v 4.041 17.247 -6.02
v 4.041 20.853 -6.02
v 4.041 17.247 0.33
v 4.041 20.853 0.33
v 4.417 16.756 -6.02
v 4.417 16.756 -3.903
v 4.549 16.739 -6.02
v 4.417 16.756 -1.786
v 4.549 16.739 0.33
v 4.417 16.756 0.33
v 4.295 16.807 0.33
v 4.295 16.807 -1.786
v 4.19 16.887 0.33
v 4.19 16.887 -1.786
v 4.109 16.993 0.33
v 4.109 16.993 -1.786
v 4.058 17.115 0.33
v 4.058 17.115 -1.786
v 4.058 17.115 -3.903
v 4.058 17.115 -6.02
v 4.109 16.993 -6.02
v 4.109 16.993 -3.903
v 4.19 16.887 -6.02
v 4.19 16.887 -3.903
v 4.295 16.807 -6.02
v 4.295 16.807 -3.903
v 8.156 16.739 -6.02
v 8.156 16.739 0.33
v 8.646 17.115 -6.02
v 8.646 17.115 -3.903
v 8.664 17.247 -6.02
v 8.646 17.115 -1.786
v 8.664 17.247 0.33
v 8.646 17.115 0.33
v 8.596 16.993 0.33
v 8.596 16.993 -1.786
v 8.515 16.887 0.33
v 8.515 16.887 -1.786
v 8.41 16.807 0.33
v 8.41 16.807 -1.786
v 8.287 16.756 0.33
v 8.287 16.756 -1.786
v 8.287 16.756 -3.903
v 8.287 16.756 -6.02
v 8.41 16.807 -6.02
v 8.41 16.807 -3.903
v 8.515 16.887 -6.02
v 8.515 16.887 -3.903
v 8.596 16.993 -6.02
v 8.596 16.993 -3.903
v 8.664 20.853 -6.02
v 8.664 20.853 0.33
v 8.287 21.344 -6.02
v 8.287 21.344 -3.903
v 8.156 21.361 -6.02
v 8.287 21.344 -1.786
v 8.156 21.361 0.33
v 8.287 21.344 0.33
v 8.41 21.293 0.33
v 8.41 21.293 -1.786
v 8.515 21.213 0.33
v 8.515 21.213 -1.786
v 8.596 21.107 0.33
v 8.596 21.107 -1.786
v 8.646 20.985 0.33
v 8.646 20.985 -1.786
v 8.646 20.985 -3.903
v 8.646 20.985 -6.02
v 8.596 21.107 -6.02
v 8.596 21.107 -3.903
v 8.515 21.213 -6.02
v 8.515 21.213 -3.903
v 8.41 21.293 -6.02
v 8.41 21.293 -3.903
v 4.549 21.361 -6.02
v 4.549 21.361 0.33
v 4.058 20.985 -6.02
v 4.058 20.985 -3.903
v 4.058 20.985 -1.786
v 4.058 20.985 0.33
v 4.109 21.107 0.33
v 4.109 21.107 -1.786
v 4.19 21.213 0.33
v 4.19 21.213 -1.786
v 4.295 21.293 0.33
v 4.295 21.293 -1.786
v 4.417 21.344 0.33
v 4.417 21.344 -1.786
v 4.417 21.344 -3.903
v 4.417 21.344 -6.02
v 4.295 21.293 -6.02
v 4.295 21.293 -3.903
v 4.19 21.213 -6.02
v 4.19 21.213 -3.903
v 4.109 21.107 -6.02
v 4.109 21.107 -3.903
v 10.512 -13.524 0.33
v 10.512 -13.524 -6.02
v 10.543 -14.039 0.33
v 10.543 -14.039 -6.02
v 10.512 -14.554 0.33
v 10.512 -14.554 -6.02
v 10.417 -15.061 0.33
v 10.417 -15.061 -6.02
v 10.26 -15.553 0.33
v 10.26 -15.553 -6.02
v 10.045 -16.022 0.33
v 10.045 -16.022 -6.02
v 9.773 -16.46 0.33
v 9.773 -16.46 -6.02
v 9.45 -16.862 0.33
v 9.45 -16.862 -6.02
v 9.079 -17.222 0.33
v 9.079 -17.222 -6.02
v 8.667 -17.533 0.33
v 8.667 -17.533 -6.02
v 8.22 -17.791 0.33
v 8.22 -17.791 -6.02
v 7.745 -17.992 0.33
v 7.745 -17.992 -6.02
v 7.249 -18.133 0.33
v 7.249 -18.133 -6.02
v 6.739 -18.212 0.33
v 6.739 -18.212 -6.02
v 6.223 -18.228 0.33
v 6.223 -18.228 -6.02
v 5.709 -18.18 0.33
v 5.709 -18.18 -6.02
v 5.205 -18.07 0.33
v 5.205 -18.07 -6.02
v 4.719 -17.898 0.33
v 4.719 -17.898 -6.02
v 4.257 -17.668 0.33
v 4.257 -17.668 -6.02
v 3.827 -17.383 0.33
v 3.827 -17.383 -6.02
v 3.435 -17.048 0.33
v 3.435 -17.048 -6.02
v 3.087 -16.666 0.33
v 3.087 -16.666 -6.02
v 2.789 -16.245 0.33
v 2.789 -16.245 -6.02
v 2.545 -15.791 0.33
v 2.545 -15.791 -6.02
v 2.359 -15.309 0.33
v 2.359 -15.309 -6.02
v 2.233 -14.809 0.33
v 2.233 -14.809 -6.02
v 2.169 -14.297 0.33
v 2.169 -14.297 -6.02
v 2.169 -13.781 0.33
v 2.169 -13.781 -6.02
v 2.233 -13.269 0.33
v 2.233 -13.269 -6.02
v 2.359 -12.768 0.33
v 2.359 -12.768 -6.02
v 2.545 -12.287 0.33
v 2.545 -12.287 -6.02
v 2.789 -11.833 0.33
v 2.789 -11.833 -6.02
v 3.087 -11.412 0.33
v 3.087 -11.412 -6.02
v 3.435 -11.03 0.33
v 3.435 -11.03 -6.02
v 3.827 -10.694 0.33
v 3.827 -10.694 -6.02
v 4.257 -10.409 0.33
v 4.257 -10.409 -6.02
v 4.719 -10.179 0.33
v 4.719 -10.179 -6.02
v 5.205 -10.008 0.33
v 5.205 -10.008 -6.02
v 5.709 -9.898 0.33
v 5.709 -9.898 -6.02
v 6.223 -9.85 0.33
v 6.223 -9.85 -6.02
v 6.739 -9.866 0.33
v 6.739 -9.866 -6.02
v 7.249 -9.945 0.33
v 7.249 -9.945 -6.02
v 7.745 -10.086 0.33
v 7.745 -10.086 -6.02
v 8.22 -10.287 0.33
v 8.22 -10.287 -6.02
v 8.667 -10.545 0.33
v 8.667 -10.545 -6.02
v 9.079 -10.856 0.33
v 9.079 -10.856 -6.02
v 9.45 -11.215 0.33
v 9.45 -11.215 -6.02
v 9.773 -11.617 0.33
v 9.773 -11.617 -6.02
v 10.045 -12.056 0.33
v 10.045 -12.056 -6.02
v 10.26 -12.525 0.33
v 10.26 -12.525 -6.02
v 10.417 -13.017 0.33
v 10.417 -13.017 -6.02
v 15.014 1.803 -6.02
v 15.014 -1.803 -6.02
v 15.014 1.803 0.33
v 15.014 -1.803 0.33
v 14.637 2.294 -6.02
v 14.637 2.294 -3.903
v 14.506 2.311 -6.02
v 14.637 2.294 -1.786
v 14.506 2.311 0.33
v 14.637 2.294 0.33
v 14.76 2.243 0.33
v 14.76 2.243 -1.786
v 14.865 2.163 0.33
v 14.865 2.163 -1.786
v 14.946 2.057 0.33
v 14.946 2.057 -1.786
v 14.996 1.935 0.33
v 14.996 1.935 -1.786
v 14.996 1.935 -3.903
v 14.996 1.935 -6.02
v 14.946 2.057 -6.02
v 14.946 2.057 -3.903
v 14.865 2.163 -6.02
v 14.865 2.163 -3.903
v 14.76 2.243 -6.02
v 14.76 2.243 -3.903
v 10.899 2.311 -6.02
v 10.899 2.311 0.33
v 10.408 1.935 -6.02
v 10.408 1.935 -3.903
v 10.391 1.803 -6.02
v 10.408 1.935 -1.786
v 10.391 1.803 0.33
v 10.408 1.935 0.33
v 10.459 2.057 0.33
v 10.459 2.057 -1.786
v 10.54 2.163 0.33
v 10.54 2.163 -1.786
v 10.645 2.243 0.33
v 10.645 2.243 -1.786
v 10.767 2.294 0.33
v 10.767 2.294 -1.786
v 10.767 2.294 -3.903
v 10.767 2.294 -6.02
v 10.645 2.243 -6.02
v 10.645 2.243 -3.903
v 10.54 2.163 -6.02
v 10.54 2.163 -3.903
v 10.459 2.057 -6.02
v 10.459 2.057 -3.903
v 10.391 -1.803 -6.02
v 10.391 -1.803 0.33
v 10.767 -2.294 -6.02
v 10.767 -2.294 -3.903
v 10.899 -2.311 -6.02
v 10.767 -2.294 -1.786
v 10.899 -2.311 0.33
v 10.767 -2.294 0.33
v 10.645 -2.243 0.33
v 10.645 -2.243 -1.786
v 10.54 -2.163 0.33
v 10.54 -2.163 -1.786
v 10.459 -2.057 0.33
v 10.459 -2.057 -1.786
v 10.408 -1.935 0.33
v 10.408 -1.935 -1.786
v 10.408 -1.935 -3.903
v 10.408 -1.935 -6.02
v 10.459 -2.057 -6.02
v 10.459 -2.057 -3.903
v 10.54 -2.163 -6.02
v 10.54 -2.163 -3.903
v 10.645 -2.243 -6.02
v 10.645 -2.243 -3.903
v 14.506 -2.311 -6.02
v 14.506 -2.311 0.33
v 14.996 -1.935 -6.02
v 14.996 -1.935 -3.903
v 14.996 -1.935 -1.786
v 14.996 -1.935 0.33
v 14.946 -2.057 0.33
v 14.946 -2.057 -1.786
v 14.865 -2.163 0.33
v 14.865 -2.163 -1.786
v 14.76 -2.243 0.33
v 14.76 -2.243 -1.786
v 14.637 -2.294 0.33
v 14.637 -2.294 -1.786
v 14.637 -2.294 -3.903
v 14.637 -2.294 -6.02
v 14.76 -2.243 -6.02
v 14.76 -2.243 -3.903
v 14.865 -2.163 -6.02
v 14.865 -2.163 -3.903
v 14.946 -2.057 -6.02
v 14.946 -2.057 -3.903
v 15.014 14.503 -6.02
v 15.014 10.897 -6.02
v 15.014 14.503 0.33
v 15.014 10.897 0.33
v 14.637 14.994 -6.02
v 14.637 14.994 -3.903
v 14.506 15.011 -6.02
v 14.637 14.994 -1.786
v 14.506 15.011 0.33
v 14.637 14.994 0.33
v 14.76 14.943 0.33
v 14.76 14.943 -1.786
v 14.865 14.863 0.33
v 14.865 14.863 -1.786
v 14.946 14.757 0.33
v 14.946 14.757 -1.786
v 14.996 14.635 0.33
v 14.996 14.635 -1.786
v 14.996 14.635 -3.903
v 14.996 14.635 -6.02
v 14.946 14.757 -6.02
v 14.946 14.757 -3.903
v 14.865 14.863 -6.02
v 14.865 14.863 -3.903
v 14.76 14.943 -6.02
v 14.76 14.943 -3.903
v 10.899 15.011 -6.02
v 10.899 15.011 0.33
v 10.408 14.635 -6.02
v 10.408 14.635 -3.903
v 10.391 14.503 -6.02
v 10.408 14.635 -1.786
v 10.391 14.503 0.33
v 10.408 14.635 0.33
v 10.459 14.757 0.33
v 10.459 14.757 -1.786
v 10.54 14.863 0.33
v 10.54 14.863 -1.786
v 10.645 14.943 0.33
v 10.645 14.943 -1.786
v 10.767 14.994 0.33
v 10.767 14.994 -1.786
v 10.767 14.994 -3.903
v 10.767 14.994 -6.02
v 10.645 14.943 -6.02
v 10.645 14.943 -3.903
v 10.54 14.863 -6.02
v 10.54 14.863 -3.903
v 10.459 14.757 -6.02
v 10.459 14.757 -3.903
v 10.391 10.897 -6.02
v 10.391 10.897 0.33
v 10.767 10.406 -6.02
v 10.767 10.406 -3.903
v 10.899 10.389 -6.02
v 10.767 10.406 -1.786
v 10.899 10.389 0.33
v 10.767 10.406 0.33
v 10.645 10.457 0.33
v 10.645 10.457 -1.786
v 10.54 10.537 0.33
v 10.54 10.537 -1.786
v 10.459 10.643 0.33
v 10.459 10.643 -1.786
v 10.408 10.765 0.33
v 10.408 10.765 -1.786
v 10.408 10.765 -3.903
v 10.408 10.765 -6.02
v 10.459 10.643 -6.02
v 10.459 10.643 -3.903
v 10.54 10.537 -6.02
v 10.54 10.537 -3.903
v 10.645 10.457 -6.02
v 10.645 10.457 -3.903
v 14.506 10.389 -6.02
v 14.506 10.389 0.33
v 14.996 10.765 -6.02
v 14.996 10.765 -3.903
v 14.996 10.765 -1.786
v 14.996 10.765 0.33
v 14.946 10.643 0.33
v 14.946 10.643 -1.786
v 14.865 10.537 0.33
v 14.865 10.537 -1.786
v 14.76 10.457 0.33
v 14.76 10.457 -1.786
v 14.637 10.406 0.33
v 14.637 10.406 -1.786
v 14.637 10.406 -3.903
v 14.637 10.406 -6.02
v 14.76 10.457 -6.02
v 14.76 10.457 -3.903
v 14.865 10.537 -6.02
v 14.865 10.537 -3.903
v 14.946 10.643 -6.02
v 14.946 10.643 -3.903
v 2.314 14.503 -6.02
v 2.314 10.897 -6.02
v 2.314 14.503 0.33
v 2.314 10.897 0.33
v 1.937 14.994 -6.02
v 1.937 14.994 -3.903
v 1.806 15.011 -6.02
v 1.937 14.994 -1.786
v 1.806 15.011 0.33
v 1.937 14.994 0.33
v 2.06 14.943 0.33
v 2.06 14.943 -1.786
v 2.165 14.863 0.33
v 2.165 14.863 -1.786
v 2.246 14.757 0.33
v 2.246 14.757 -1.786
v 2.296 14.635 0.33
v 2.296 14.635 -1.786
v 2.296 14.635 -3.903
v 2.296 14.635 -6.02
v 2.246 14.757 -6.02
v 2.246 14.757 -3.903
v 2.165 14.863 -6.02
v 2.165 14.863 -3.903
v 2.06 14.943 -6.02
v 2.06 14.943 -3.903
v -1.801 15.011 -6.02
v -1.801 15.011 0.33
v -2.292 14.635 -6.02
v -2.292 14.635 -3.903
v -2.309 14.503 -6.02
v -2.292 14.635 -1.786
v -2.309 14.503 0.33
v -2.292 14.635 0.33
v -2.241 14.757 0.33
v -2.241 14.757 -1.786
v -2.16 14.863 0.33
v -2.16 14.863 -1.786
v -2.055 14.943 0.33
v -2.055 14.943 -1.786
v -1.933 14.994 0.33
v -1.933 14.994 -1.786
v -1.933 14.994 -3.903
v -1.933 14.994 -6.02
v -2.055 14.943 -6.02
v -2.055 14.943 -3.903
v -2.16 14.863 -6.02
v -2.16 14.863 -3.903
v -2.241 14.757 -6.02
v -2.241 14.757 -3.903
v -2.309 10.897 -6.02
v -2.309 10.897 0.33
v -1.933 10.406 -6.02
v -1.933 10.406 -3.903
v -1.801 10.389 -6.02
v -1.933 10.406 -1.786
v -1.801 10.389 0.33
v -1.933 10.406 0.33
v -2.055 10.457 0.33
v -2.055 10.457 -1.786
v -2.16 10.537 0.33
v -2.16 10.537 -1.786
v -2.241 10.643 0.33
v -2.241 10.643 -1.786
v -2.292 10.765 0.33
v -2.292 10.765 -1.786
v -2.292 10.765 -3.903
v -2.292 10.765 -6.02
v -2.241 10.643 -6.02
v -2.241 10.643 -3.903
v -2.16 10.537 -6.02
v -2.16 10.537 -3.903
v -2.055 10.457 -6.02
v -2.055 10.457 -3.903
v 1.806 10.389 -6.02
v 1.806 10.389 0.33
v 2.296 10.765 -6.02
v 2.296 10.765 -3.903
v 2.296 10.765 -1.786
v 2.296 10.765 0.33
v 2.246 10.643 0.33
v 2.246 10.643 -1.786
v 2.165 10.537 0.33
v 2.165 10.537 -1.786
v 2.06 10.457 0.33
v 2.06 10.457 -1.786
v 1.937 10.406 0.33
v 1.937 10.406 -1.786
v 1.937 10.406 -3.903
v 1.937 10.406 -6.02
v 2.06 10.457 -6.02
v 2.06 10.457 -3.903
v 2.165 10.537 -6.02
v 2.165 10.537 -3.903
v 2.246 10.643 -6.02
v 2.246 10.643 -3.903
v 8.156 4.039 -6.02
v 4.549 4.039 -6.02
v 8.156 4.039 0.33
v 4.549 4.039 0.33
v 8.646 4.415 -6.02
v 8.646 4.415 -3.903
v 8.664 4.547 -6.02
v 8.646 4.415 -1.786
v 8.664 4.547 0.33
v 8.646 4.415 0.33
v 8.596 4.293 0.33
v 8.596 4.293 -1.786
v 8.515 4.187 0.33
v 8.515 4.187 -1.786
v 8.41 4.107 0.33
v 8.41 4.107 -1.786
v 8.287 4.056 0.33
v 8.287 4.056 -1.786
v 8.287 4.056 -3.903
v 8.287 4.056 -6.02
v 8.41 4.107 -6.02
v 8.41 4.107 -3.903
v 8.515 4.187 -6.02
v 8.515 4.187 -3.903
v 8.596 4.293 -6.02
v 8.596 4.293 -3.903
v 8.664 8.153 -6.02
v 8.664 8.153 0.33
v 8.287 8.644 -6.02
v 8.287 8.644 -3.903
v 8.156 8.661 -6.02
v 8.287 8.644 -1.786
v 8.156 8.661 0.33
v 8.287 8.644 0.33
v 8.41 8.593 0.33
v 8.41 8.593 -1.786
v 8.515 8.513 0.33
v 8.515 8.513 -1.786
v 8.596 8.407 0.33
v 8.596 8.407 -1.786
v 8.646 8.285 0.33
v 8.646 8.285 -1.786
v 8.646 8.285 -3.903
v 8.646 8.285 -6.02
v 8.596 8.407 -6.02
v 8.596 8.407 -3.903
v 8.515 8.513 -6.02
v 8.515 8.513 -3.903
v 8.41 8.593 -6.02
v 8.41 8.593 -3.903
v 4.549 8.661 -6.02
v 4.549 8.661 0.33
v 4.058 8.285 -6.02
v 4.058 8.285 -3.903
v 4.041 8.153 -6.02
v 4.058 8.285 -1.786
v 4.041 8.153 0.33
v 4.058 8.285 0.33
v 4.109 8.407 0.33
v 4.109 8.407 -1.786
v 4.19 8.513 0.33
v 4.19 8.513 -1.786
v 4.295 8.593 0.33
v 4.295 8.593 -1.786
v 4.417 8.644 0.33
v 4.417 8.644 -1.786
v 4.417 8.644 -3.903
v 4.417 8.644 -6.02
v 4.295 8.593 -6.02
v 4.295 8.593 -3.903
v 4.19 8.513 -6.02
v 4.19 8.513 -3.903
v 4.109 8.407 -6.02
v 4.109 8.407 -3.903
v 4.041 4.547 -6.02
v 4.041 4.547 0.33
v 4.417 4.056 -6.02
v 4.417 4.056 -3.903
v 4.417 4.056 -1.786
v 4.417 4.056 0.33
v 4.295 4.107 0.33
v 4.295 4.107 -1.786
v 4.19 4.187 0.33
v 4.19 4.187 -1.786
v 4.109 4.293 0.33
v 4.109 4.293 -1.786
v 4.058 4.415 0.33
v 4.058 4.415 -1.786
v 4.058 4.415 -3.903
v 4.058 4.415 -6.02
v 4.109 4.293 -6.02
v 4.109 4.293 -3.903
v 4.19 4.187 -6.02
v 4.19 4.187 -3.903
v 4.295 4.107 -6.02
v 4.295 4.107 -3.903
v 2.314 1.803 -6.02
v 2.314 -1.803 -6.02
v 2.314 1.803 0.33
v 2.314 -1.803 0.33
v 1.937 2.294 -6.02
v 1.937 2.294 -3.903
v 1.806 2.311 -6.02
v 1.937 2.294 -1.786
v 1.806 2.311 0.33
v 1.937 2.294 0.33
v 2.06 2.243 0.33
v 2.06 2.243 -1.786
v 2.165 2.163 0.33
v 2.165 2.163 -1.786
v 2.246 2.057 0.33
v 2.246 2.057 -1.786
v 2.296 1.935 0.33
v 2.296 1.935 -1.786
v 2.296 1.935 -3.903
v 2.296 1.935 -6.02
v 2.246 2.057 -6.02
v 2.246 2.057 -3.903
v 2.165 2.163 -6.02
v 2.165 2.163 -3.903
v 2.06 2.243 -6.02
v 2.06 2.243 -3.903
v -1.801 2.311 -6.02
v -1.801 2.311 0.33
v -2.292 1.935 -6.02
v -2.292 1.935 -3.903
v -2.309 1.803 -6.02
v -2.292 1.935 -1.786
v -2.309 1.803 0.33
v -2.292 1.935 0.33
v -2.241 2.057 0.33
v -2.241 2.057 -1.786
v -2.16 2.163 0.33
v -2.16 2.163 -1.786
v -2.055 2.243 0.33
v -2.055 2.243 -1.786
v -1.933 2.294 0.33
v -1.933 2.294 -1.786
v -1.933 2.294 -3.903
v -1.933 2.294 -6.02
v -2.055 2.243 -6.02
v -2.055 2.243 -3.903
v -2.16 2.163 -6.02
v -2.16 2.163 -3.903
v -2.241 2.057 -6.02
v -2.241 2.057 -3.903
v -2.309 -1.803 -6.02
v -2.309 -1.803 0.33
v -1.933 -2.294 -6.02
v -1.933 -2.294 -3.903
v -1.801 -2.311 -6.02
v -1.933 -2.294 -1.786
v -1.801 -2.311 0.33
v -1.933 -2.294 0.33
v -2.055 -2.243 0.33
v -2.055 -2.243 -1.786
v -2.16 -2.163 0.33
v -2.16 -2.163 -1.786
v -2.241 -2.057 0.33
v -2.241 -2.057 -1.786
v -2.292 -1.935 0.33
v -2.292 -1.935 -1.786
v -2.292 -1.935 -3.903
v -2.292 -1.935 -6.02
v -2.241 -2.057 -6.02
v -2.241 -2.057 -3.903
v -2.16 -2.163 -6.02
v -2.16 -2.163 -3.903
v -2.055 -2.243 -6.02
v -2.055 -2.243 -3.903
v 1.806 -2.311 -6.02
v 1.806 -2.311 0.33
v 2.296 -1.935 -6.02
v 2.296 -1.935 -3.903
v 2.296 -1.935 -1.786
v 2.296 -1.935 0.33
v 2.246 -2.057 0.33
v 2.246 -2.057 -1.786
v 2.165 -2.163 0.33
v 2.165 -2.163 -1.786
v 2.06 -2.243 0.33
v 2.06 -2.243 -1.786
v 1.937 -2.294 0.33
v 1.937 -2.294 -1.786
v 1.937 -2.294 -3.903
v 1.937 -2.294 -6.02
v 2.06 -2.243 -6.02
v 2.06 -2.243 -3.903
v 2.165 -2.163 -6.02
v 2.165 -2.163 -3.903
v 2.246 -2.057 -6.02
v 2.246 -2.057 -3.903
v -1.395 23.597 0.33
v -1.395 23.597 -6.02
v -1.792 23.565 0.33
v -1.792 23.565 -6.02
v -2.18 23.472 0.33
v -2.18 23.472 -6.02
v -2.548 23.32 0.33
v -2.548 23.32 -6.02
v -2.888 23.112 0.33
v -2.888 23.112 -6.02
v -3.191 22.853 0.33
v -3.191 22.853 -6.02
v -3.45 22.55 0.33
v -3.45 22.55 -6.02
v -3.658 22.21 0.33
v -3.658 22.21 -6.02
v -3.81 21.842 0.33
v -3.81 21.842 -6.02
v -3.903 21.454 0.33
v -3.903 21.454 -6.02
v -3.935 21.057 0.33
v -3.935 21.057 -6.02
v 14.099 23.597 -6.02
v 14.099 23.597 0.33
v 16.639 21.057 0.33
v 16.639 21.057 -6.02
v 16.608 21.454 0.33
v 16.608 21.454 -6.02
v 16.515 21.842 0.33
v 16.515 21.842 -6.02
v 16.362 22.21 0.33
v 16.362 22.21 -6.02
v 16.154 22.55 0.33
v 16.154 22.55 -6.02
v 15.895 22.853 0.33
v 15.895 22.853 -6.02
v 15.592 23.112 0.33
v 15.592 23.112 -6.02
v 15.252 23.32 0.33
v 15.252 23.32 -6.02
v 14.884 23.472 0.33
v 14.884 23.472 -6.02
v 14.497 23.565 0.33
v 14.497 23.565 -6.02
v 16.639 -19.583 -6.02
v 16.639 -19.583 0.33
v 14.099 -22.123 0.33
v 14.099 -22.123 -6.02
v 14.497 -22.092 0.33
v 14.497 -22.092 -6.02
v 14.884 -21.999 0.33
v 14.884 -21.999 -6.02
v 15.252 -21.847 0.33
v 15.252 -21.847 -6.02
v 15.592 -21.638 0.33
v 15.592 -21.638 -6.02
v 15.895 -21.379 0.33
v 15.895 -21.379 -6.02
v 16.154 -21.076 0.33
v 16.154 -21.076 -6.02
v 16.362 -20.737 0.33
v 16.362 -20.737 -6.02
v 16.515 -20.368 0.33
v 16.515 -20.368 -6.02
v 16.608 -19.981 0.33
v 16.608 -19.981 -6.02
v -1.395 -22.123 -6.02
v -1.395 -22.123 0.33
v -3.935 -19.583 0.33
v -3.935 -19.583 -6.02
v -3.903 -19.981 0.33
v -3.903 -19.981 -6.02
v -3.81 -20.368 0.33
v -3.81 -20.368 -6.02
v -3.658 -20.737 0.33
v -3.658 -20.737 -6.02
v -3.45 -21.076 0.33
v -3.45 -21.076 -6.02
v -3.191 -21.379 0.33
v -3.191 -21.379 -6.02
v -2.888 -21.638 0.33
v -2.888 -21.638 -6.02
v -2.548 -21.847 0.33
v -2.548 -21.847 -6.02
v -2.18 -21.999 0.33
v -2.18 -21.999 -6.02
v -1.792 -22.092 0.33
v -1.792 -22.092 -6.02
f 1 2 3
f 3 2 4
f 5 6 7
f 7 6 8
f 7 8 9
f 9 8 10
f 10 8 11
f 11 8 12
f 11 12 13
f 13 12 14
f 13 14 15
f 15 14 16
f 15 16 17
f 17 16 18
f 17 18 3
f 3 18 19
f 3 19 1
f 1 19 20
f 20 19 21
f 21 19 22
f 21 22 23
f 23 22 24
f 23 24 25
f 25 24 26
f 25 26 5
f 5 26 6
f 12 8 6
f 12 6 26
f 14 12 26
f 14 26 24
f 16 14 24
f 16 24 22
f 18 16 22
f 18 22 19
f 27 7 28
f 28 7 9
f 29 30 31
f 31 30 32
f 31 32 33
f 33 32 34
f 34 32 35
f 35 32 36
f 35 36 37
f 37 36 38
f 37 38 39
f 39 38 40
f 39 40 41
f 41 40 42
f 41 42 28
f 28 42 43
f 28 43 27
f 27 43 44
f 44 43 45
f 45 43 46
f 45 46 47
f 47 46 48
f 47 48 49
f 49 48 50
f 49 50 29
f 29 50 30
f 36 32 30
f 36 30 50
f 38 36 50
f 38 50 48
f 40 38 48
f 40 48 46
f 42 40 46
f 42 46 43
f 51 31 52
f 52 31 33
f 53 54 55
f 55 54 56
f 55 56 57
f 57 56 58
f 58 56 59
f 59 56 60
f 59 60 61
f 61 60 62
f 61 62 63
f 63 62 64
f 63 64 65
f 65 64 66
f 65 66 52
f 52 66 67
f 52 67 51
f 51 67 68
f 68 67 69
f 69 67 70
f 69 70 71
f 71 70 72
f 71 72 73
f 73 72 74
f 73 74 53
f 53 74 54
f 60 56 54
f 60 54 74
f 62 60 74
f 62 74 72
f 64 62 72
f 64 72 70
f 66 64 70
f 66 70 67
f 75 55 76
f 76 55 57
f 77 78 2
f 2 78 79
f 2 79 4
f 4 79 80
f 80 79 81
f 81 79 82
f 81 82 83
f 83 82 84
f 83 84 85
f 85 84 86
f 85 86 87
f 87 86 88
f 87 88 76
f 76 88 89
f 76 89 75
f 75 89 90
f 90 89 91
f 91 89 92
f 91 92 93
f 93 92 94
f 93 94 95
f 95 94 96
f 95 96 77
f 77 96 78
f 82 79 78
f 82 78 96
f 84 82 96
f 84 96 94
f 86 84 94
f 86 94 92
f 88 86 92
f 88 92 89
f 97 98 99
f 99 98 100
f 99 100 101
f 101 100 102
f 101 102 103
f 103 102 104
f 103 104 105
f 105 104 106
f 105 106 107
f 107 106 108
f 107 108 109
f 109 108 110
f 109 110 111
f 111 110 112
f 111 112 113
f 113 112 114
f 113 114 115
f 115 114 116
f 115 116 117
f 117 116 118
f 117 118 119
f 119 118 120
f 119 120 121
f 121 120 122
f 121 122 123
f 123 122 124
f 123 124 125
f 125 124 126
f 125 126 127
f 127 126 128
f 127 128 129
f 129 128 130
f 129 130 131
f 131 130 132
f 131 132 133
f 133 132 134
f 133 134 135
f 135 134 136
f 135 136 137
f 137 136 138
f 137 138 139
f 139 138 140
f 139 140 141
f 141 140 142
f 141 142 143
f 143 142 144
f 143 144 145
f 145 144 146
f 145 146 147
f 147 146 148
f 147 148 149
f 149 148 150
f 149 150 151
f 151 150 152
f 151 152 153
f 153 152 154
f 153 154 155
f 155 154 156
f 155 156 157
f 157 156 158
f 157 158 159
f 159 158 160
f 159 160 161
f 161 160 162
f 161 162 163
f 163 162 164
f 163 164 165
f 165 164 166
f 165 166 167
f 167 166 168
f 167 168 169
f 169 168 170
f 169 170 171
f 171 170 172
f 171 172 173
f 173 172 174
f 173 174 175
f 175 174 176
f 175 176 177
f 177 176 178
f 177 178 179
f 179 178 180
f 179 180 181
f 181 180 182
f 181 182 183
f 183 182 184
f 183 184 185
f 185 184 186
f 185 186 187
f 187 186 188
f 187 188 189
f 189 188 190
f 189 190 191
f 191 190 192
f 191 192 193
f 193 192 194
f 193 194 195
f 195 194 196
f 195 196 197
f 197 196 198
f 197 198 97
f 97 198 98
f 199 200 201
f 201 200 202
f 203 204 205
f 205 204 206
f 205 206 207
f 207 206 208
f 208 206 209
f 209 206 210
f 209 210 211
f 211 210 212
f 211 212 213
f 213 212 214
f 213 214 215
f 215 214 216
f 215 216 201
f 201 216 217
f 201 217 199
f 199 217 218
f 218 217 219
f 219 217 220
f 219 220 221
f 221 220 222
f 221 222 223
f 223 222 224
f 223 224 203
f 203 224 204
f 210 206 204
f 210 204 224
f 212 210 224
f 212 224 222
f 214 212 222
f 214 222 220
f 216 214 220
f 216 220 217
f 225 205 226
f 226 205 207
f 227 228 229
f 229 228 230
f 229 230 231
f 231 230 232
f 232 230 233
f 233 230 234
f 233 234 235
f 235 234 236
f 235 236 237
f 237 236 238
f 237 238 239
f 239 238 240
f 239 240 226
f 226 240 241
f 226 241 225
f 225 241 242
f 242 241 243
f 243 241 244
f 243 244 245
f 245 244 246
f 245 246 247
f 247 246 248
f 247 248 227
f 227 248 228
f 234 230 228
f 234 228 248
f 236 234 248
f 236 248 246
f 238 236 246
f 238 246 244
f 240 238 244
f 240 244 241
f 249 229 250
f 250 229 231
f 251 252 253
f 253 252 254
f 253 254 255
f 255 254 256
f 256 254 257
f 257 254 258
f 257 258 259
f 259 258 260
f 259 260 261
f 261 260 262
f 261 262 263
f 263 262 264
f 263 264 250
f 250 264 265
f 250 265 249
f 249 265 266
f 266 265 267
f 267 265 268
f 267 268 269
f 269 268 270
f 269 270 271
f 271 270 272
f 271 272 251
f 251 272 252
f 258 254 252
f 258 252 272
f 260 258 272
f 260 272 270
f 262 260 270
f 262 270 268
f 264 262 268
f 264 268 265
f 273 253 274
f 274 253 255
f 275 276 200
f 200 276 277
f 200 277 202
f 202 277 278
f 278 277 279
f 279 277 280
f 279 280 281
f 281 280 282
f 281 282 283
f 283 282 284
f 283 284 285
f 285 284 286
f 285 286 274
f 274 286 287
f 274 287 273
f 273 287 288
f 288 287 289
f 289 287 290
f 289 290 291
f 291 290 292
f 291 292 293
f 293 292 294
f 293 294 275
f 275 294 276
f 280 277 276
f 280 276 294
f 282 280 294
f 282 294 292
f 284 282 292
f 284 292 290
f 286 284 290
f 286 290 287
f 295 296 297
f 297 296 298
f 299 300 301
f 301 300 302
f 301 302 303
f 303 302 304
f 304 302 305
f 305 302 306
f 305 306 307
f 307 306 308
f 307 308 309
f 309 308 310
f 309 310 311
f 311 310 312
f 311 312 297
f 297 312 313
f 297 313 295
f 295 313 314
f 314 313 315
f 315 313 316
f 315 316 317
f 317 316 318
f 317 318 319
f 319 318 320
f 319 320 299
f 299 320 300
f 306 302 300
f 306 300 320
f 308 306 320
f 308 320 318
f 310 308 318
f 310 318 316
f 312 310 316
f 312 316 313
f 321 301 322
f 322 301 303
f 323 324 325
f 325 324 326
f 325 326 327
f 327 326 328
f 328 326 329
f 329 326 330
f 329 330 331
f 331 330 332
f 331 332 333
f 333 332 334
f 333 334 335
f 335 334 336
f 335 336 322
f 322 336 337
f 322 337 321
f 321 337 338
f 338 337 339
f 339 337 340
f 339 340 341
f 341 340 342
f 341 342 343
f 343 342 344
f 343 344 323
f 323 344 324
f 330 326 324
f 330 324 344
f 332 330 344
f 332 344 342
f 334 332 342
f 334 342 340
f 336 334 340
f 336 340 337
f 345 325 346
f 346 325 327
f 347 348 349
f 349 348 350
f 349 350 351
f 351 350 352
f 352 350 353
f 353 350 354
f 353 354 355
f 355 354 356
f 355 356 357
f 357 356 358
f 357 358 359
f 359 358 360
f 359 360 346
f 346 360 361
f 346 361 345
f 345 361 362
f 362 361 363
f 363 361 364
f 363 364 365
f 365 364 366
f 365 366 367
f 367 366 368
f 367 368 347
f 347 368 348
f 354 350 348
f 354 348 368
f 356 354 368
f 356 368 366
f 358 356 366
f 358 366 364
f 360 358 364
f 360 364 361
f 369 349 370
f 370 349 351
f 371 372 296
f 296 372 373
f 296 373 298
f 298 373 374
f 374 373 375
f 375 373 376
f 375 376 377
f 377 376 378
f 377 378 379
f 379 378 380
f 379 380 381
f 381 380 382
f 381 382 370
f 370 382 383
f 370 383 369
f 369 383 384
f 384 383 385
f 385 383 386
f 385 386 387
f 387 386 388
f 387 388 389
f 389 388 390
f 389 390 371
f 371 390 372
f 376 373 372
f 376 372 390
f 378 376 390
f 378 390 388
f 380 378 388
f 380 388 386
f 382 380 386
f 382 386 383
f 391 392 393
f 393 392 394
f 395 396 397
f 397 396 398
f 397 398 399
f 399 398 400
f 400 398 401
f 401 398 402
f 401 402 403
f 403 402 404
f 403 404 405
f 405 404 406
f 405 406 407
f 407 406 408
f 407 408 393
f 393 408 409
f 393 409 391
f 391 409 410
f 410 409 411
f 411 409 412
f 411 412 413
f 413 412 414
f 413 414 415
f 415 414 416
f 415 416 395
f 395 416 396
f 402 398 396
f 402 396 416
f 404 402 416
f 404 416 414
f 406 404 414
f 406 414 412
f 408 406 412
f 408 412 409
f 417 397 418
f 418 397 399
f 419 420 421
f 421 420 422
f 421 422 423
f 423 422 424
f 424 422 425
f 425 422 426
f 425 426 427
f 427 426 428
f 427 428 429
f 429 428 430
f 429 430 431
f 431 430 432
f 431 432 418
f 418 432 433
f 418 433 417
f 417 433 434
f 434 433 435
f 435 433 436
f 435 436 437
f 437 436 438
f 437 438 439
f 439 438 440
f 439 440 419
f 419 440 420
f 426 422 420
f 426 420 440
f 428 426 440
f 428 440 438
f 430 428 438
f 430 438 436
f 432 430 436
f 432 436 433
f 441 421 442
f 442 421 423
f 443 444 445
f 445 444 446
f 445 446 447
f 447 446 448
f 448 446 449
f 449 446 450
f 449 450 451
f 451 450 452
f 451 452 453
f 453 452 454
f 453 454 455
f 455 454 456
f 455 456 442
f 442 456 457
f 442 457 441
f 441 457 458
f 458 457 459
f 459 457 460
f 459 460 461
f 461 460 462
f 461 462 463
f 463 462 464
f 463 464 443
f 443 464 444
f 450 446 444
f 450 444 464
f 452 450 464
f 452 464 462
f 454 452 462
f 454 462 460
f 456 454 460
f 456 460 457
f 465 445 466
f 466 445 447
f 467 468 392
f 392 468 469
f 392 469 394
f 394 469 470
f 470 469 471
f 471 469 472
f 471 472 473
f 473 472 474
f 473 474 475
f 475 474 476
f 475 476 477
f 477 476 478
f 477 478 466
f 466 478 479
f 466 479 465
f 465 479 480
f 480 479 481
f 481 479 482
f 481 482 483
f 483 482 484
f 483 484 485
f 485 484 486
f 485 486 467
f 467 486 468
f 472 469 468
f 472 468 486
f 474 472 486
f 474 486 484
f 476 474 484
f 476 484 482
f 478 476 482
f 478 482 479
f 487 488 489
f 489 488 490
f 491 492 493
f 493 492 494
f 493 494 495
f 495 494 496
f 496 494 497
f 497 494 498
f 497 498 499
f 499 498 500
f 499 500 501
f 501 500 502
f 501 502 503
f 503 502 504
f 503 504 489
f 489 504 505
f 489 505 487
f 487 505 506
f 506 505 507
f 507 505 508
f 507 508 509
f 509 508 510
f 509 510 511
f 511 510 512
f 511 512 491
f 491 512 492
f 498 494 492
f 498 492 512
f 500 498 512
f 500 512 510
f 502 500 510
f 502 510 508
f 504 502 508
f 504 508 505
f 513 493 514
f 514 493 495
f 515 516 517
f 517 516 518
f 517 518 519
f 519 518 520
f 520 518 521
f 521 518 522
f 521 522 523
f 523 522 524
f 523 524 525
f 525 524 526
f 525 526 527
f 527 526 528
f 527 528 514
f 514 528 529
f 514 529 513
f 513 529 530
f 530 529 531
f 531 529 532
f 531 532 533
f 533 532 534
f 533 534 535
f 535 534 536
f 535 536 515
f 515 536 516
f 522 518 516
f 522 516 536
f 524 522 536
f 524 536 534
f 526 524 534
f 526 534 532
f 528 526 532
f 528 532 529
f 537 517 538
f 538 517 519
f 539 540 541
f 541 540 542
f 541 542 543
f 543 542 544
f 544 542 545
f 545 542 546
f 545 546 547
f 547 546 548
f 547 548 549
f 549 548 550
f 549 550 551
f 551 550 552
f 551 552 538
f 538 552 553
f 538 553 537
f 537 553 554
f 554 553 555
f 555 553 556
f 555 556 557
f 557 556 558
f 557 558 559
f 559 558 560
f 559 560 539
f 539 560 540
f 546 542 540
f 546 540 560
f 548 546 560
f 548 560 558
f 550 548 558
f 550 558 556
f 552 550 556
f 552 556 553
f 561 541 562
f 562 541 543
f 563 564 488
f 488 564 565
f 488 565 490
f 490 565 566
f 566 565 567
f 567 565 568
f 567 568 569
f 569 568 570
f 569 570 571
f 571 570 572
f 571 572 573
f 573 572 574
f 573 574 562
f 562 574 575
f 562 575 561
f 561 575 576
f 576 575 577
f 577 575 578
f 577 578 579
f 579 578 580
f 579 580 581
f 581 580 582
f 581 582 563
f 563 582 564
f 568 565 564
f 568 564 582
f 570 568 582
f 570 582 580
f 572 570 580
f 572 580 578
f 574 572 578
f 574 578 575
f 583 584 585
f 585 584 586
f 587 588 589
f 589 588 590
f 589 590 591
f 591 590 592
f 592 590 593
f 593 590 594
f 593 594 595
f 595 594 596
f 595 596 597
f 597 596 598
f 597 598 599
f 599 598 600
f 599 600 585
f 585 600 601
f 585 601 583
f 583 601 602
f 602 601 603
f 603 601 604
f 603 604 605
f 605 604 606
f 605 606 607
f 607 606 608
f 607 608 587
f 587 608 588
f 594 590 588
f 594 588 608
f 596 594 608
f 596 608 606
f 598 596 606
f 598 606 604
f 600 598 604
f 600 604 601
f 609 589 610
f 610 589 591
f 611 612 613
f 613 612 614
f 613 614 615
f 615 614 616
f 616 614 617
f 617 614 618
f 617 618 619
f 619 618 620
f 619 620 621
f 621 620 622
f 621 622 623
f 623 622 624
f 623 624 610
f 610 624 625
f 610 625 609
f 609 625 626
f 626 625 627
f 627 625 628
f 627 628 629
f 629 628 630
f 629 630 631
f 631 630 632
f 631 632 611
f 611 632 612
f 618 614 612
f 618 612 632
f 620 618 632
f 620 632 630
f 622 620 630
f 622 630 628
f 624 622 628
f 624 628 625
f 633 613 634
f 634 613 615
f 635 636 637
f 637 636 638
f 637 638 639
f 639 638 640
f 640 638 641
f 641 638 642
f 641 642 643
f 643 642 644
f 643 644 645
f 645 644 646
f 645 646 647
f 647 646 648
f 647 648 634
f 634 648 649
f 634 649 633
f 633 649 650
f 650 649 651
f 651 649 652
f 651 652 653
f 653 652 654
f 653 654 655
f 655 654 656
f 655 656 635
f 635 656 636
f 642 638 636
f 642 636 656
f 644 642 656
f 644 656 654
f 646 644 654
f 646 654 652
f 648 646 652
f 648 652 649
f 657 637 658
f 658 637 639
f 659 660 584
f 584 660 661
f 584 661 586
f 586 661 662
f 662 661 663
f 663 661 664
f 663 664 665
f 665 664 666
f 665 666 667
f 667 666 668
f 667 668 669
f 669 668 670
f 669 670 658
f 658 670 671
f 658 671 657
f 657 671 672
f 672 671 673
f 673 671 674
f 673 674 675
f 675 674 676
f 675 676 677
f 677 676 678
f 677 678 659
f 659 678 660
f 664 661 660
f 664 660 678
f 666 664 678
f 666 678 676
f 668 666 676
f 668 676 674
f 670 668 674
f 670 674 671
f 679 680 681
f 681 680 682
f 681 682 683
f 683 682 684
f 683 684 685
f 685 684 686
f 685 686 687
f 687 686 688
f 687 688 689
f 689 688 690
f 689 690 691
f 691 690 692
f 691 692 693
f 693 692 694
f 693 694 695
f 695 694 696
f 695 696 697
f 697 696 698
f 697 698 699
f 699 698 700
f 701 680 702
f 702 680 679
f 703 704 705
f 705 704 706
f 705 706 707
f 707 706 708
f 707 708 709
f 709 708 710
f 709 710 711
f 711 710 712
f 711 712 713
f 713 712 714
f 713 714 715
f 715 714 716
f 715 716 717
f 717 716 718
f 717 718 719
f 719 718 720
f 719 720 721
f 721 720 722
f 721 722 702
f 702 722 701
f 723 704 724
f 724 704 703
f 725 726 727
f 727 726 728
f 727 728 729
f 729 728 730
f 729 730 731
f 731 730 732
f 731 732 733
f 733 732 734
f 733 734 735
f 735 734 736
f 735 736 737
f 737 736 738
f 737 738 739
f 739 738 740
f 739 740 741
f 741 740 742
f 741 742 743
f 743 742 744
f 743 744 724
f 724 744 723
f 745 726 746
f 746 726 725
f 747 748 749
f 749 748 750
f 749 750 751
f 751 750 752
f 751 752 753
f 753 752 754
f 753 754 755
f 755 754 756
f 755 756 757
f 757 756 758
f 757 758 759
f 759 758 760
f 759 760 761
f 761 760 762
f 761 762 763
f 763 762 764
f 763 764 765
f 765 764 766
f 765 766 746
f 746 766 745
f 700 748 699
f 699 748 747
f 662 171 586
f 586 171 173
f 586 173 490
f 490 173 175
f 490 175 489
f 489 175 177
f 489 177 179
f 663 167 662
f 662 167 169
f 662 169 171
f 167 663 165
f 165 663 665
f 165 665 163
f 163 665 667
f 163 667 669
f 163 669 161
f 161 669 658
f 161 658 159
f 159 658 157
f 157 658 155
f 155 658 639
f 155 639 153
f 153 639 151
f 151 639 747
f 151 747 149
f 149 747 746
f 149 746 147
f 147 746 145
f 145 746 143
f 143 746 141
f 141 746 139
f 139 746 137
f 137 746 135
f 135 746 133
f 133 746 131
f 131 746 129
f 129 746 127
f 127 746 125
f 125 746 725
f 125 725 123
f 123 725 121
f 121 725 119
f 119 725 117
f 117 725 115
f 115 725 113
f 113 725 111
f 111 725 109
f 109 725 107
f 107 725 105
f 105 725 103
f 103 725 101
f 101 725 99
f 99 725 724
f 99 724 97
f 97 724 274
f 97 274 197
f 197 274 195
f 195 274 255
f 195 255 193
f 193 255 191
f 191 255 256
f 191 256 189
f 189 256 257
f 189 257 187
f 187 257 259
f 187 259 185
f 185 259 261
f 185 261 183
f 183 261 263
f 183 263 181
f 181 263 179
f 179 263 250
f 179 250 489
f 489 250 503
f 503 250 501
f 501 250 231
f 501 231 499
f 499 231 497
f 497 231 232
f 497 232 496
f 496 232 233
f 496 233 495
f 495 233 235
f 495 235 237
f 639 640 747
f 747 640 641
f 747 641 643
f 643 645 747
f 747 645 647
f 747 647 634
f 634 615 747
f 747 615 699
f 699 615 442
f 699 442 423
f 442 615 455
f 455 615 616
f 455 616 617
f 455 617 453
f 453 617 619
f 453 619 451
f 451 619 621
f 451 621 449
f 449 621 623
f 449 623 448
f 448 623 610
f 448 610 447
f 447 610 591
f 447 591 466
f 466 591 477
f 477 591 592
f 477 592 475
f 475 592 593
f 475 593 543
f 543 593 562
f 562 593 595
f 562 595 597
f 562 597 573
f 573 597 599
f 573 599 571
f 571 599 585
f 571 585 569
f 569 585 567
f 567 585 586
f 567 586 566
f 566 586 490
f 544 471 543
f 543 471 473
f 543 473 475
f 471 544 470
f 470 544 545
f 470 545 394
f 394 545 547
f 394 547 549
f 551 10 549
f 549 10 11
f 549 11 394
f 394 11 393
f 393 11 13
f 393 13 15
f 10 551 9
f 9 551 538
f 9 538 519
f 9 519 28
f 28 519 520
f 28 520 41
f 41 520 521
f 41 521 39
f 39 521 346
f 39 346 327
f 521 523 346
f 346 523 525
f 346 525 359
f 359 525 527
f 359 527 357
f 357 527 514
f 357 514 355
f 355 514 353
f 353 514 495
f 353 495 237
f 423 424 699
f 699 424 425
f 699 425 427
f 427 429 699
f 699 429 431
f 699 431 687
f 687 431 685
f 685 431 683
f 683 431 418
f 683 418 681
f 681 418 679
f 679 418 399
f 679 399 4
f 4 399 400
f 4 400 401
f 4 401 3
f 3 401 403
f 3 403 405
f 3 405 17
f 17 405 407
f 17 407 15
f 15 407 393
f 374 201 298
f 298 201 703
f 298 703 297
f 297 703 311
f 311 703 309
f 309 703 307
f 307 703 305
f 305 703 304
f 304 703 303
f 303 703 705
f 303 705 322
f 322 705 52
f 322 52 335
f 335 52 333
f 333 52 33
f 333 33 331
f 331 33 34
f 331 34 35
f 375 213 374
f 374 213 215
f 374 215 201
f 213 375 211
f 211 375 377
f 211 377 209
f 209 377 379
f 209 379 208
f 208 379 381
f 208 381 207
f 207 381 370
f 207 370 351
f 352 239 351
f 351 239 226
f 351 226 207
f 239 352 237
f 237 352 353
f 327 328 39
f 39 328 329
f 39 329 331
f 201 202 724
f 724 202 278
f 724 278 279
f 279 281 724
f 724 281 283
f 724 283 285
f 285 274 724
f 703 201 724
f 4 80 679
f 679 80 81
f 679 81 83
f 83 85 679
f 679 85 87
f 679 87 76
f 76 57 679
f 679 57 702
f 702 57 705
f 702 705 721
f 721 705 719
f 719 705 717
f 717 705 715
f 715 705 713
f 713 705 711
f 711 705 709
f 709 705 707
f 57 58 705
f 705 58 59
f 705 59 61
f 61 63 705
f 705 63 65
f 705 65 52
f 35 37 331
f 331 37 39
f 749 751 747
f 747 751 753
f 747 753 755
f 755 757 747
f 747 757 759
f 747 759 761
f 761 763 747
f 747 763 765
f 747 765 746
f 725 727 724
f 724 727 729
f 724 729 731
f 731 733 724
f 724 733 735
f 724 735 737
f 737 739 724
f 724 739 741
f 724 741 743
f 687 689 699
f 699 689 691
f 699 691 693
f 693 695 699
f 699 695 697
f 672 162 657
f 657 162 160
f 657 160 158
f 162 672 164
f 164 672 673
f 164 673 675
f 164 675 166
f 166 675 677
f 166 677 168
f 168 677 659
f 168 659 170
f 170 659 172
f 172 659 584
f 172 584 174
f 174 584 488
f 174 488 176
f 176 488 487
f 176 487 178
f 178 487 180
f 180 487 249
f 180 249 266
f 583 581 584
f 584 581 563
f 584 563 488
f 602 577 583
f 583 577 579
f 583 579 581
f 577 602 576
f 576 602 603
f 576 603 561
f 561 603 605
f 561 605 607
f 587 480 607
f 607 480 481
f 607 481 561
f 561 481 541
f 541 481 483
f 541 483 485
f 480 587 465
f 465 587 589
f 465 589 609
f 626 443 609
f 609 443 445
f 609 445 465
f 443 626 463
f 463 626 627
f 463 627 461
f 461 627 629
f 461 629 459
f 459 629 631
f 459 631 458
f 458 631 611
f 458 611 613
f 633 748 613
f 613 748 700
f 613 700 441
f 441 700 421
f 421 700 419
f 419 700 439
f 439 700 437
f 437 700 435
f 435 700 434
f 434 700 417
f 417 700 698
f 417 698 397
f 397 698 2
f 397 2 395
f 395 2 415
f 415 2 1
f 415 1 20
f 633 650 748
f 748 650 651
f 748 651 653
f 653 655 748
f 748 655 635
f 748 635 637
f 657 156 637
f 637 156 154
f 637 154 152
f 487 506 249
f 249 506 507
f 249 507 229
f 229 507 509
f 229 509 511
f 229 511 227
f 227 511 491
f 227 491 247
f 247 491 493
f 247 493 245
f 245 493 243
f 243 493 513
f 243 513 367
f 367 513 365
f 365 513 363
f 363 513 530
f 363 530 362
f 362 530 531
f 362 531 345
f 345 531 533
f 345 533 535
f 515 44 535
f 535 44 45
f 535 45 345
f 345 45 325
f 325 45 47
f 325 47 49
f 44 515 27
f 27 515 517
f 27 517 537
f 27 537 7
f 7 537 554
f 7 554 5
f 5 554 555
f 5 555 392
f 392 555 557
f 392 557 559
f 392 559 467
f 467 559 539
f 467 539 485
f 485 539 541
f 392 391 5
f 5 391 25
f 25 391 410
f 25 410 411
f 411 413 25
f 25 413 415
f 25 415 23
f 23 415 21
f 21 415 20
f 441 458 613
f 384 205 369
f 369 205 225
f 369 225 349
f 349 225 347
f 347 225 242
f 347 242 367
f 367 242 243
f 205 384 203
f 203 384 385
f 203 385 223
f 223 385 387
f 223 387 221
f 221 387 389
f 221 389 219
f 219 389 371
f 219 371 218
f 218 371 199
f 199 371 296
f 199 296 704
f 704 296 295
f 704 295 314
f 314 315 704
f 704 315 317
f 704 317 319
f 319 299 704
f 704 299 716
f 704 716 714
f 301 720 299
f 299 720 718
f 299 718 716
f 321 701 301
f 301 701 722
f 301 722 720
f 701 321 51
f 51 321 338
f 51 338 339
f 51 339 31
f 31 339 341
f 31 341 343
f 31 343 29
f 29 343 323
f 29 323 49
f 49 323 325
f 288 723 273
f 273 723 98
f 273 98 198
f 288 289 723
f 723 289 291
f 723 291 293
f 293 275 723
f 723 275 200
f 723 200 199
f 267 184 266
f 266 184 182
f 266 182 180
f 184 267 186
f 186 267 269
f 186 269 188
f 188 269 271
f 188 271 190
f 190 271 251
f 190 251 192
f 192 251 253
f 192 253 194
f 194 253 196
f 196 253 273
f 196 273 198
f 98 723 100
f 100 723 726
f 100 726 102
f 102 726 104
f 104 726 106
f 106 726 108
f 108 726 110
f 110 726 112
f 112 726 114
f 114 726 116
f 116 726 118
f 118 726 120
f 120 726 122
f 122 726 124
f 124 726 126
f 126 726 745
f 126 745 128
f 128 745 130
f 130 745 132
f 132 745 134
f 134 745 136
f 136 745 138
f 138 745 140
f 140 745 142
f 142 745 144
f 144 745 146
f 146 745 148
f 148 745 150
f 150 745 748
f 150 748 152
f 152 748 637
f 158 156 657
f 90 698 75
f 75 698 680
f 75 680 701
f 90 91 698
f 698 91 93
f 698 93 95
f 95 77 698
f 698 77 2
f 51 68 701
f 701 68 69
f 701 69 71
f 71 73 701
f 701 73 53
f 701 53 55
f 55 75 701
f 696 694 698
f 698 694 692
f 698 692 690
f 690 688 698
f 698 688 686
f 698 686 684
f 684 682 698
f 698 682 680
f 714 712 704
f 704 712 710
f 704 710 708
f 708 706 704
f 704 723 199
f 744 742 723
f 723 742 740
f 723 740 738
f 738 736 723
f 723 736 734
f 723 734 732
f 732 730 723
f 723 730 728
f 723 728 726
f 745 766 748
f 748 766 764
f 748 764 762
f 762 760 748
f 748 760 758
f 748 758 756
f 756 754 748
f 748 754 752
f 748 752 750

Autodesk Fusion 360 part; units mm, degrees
sketch "Sketch1" plane through (0, 0, -6.0198) normal (0, 0, 1) x (-1, 0, 0)
  line L0 (-4.0409, -44.45) -> (3.9347, -44.45)
  line L1 (3.9347, -44.45) -> (3.9347, 6.35)
  line L2 (3.9347, 6.35) -> (-16.6393, 6.35)
  line L3 (-16.6393, 6.35) -> (-16.6393, -44.45)
  line L4 (-16.6393, -44.45) -> (-8.6637, -44.45)
  line L5 (-8.6637, -44.45) -> (-8.6637, -42.6466)
  arc A0 (-8.1557, -42.1386) -> (-8.6637, -42.6466) centre (-8.1557, -42.6466) ccw
  line L6 (-8.1557, -42.1386) -> (-4.5489, -42.1386)
  arc A1 (-4.0409, -42.6466) -> (-4.5489, -42.1386) centre (-4.5489, -42.6466) ccw
  line L7 (-4.0409, -42.6466) -> (-4.0409, -44.45)
  arc A2 (-8.1557, -29.4386) -> (-8.6637, -29.9466) centre (-8.1557, -29.9466) ccw
  line L8 (-8.1557, -29.4386) -> (-4.5489, -29.4386)
  arc A3 (-4.0409, -29.9466) -> (-4.5489, -29.4386) centre (-4.5489, -29.9466) ccw
  line L9 (-4.0409, -29.9466) -> (-4.0409, -33.5534)
  arc A4 (-4.5489, -34.0614) -> (-4.0409, -33.5534) centre (-4.5489, -33.5534) ccw
  line L10 (-4.5489, -34.0614) -> (-8.1557, -34.0614)
  arc A5 (-8.6637, -33.5534) -> (-8.1557, -34.0614) centre (-8.1557, -33.5534) ccw
  line L11 (-8.6637, -33.5534) -> (-8.6637, -29.9466)
  arc A6 (1.8011, -40.4114) -> (2.3091, -39.9034) centre (1.8011, -39.9034) ccw
  line L12 (1.8011, -40.4114) -> (-1.8057, -40.4114)
  arc A7 (-2.3137, -39.9034) -> (-1.8057, -40.4114) centre (-1.8057, -39.9034) ccw
  line L13 (-2.3137, -39.9034) -> (-2.3137, -36.2966)
  arc A8 (-1.8057, -35.7886) -> (-2.3137, -36.2966) centre (-1.8057, -36.2966) ccw
  line L14 (-1.8057, -35.7886) -> (1.8011, -35.7886)
  arc A9 (2.3091, -36.2966) -> (1.8011, -35.7886) centre (1.8011, -36.2966) ccw
  line L15 (2.3091, -36.2966) -> (2.3091, -39.9034)
  arc A10 (1.8011, -27.7114) -> (2.3091, -27.2034) centre (1.8011, -27.2034) ccw
  line L16 (1.8011, -27.7114) -> (-1.8057, -27.7114)
  arc A11 (-2.3137, -27.2034) -> (-1.8057, -27.7114) centre (-1.8057, -27.2034) ccw
  line L17 (-2.3137, -27.2034) -> (-2.3137, -23.5966)
  arc A12 (-1.8057, -23.0886) -> (-2.3137, -23.5966) centre (-1.8057, -23.5966) ccw
  line L18 (-1.8057, -23.0886) -> (1.8011, -23.0886)
  arc A13 (2.3091, -23.5966) -> (1.8011, -23.0886) centre (1.8011, -23.5966) ccw
  line L19 (2.3091, -23.5966) -> (2.3091, -27.2034)
  arc A14 (1.8011, -15.0114) -> (2.3091, -14.5034) centre (1.8011, -14.5034) ccw
  line L20 (1.8011, -15.0114) -> (-1.8057, -15.0114)
  arc A15 (-2.3137, -14.5034) -> (-1.8057, -15.0114) centre (-1.8057, -14.5034) ccw
  line L21 (-2.3137, -14.5034) -> (-2.3137, -10.8966)
  arc A16 (-1.8057, -10.3886) -> (-2.3137, -10.8966) centre (-1.8057, -10.8966) ccw
  line L22 (-1.8057, -10.3886) -> (1.8011, -10.3886)
  arc A17 (2.3091, -10.8966) -> (1.8011, -10.3886) centre (1.8011, -10.8966) ccw
  line L23 (2.3091, -10.8966) -> (2.3091, -14.5034)
  arc A18 (1.8011, -2.3114) -> (2.3091, -1.8034) centre (1.8011, -1.8034) ccw
  line L24 (1.8011, -2.3114) -> (-1.8057, -2.3114)
  arc A19 (-2.3137, -1.8034) -> (-1.8057, -2.3114) centre (-1.8057, -1.8034) ccw
  line L25 (-2.3137, -1.8034) -> (-2.3137, 1.8034)
  arc A20 (-1.8057, 2.3114) -> (-2.3137, 1.8034) centre (-1.8057, 1.8034) ccw
  line L26 (-1.8057, 2.3114) -> (1.8011, 2.3114)
  arc A21 (2.3091, 1.8034) -> (1.8011, 2.3114) centre (1.8011, 1.8034) ccw
  line L27 (2.3091, 1.8034) -> (2.3091, -1.8034)
  arc A22 (-10.8989, -40.4114) -> (-10.3909, -39.9034) centre (-10.8989, -39.9034) ccw
  line L28 (-10.8989, -40.4114) -> (-14.5057, -40.4114)
  arc A23 (-15.0137, -39.9034) -> (-14.5057, -40.4114) centre (-14.5057, -39.9034) ccw
  line L29 (-15.0137, -39.9034) -> (-15.0137, -36.2966)
  arc A24 (-14.5057, -35.7886) -> (-15.0137, -36.2966) centre (-14.5057, -36.2966) ccw
  line L30 (-14.5057, -35.7886) -> (-10.8989, -35.7886)
  arc A25 (-10.3909, -36.2966) -> (-10.8989, -35.7886) centre (-10.8989, -36.2966) ccw
  line L31 (-10.3909, -36.2966) -> (-10.3909, -39.9034)
  arc A26 (-10.8989, -27.7114) -> (-10.3909, -27.2034) centre (-10.8989, -27.2034) ccw
  line L32 (-10.8989, -27.7114) -> (-14.5057, -27.7114)
  arc A27 (-15.0137, -27.2034) -> (-14.5057, -27.7114) centre (-14.5057, -27.2034) ccw
  line L33 (-15.0137, -27.2034) -> (-15.0137, -23.5966)
  arc A28 (-14.5057, -23.0886) -> (-15.0137, -23.5966) centre (-14.5057, -23.5966) ccw
  line L34 (-14.5057, -23.0886) -> (-10.8989, -23.0886)
  arc A29 (-10.3909, -23.5966) -> (-10.8989, -23.0886) centre (-10.8989, -23.5966) ccw
  line L35 (-10.3909, -23.5966) -> (-10.3909, -27.2034)
  arc A30 (-10.8989, -15.0114) -> (-10.3909, -14.5034) centre (-10.8989, -14.5034) ccw
  line L36 (-10.8989, -15.0114) -> (-14.5057, -15.0114)
  arc A31 (-15.0137, -14.5034) -> (-14.5057, -15.0114) centre (-14.5057, -14.5034) ccw
  line L37 (-15.0137, -14.5034) -> (-15.0137, -10.8966)
  arc A32 (-14.5057, -10.3886) -> (-15.0137, -10.8966) centre (-14.5057, -10.8966) ccw
  line L38 (-14.5057, -10.3886) -> (-10.8989, -10.3886)
  arc A33 (-10.3909, -10.8966) -> (-10.8989, -10.3886) centre (-10.8989, -10.8966) ccw
  line L39 (-10.3909, -10.8966) -> (-10.3909, -14.5034)
  arc A34 (-10.8989, -2.3114) -> (-10.3909, -1.8034) centre (-10.8989, -1.8034) ccw
  line L40 (-10.8989, -2.3114) -> (-14.5057, -2.3114)
  arc A35 (-15.0137, -1.8034) -> (-14.5057, -2.3114) centre (-14.5057, -1.8034) ccw
  line L41 (-15.0137, -1.8034) -> (-15.0137, 1.8034)
  arc A36 (-14.5057, 2.3114) -> (-15.0137, 1.8034) centre (-14.5057, 1.8034) ccw
  line L42 (-14.5057, 2.3114) -> (-10.8989, 2.3114)
  arc A37 (-10.3909, 1.8034) -> (-10.8989, 2.3114) centre (-10.8989, 1.8034) ccw
  line L43 (-10.3909, 1.8034) -> (-10.3909, -1.8034)
  arc A38 (-8.6637, -8.1534) -> (-8.1557, -8.6614) centre (-8.1557, -8.1534) ccw
  line L44 (-8.6637, -8.1534) -> (-8.6637, -4.5466)
  arc A39 (-8.1557, -4.0386) -> (-8.6637, -4.5466) centre (-8.1557, -4.5466) ccw
  line L45 (-8.1557, -4.0386) -> (-4.5489, -4.0386)
  arc A40 (-4.0409, -4.5466) -> (-4.5489, -4.0386) centre (-4.5489, -4.5466) ccw
  line L46 (-4.0409, -4.5466) -> (-4.0409, -8.1534)
  arc A41 (-4.5489, -8.6614) -> (-4.0409, -8.1534) centre (-4.5489, -8.1534) ccw
  line L47 (-4.5489, -8.6614) -> (-8.1557, -8.6614)
  arc A42 (-8.1557, -16.7386) -> (-8.6637, -17.2466) centre (-8.1557, -17.2466) ccw
  line L48 (-8.1557, -16.7386) -> (-4.5489, -16.7386)
  arc A43 (-4.0409, -17.2466) -> (-4.5489, -16.7386) centre (-4.5489, -17.2466) ccw
  line L49 (-4.0409, -17.2466) -> (-4.0409, -20.8534)
  arc A44 (-4.5489, -21.3614) -> (-4.0409, -20.8534) centre (-4.5489, -20.8534) ccw
  line L50 (-4.5489, -21.3614) -> (-8.1557, -21.3614)
  arc A45 (-8.6637, -20.8534) -> (-8.1557, -21.3614) centre (-8.1557, -20.8534) ccw
  line L51 (-8.6637, -20.8534) -> (-8.6637, -17.2466)
  line L52 (1.3947, -23.5966) -> (-14.0993, -23.5966)
  line L53 (-16.6393, -21.0566) -> (-16.6393, 19.5834)
  line L54 (-14.0993, 22.1234) -> (1.3947, 22.1234)
  line L55 (3.9347, 19.5834) -> (3.9347, -21.0566)
  arc A46 (1.3947, -23.5966) -> (3.9347, -21.0566) centre (1.3947, -21.0566) ccw
  arc A47 (-16.6393, -21.0566) -> (-14.0993, -23.5966) centre (-14.0993, -21.0566) ccw
  arc A48 (-14.0993, 22.1234) -> (-16.6393, 19.5834) centre (-14.0993, 19.5834) ccw
  arc A49 (3.9347, 19.5834) -> (1.3947, 22.1234) centre (1.3947, 19.5834) ccw
  circle A50 centre (-6.3523, 14.0389) radius 4.191
  point P0 (3.9347, -23.5966)
  point P1 (-16.6393, -23.5966)
  point P2 (3.9347, 22.1234)
  dimension "d1" = 20.574
  dimension "d2" = 45.72
  dimension "d3" = 2.54
  dimension "d4" = 8.382
extrude "Extrude1" add sketch "Sketch1" along normal blind 6.35 contours L1 L2 L3 A12 L18 A13 A28 L34 A29 L52 L53 L55 A46 A47 | L2 L53 L54 L55 A48 A49 | A12 L18 A13 L52 A46 | A28 L34 A29 L52 A47
